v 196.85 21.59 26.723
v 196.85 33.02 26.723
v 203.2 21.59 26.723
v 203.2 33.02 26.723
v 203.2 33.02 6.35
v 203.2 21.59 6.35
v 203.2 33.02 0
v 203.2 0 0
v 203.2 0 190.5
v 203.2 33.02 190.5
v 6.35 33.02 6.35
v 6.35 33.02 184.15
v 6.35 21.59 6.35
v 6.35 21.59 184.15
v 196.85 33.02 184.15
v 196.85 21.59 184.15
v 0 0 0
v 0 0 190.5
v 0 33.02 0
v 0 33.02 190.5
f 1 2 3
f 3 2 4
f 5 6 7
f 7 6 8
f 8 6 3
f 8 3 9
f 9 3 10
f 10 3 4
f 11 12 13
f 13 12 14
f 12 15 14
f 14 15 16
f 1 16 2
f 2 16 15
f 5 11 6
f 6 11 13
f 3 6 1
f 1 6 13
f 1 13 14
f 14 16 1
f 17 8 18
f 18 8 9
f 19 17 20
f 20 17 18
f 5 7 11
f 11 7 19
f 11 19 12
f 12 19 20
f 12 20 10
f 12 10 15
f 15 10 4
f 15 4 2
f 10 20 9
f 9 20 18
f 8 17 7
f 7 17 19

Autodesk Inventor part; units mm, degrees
ref_plane "YZ Plane" through (0, 0, 0) normal (1, 0, 0) x (0, 1, 0)
ref_plane "XZ Plane" through (0, 0, 0) normal (0, 1, 0) x (-1, 0, 0)
ref_plane "XY Plane" through (0, 0, 0) normal (0, 0, 1) x (1, 0, 0)
sketch "Sketch1" plane through (0, 0, 0) normal (0, 0, 1) x (1, 0, 0)
  line L0 (0, 0) -> (0, 33.02)
  line L1 (0, 33.02) -> (203.2, 33.02)
  line L2 (203.2, 33.02) -> (203.2, 0)
  line L3 (203.2, 0) -> (0, 0)
  dimension "d0" = 203.2
  dimension "d1" = 33.02
extrude "Extrusion1" add sketch "Sketch1" along normal blind 190.5
sketch "Sketch2" plane through (0, 33.02, 0) normal (0, 1, 0) x (1, 0, 0)
  line L0 (196.85, -184.15) -> (6.35, -184.15)
  line L1 (6.35, -184.15) -> (6.35, -6.35)
  line L2 (6.35, -6.35) -> (196.85, -6.35)
  line L3 (196.85, -6.35) -> (196.85, -184.15)
  line L4 (203.2, 0) -> (203.2, -190.5) projected
  line L5 (203.2, 0) -> (0, 0) projected
  line L6 (0, 0) -> (0, -190.5) projected
  dimension "d4" = 190.5
  dimension "d5" = 177.8
  dimension "d6" = 6.35
  dimension "d7" = 6.35
extrude "Extrusion2" cut sketch "Sketch2" against normal blind 11.43
sketch "Sketch3" plane through (203.2, 0, 0) normal (1, 0, 0) x (0, 0, -1)
  line L0 (-6.35, 21.59) -> (-184.15, 21.59) projected
  line L1 (0, 33.02) -> (-190.5, 33.02) projected
  line L2 (-26.7226, 33.02) -> (-26.7226, 21.59)
  line L3 (-6.35, 21.59) -> (-6.35, 33.02)
  line L4 (-26.7226, 33.02) -> (-6.35, 33.02)
  point P0 (0, 0)
extrude "Extrusion3" cut sketch "Sketch3" against normal blind 11.43
properties part number "Photosynthetic_Wind_Base"
